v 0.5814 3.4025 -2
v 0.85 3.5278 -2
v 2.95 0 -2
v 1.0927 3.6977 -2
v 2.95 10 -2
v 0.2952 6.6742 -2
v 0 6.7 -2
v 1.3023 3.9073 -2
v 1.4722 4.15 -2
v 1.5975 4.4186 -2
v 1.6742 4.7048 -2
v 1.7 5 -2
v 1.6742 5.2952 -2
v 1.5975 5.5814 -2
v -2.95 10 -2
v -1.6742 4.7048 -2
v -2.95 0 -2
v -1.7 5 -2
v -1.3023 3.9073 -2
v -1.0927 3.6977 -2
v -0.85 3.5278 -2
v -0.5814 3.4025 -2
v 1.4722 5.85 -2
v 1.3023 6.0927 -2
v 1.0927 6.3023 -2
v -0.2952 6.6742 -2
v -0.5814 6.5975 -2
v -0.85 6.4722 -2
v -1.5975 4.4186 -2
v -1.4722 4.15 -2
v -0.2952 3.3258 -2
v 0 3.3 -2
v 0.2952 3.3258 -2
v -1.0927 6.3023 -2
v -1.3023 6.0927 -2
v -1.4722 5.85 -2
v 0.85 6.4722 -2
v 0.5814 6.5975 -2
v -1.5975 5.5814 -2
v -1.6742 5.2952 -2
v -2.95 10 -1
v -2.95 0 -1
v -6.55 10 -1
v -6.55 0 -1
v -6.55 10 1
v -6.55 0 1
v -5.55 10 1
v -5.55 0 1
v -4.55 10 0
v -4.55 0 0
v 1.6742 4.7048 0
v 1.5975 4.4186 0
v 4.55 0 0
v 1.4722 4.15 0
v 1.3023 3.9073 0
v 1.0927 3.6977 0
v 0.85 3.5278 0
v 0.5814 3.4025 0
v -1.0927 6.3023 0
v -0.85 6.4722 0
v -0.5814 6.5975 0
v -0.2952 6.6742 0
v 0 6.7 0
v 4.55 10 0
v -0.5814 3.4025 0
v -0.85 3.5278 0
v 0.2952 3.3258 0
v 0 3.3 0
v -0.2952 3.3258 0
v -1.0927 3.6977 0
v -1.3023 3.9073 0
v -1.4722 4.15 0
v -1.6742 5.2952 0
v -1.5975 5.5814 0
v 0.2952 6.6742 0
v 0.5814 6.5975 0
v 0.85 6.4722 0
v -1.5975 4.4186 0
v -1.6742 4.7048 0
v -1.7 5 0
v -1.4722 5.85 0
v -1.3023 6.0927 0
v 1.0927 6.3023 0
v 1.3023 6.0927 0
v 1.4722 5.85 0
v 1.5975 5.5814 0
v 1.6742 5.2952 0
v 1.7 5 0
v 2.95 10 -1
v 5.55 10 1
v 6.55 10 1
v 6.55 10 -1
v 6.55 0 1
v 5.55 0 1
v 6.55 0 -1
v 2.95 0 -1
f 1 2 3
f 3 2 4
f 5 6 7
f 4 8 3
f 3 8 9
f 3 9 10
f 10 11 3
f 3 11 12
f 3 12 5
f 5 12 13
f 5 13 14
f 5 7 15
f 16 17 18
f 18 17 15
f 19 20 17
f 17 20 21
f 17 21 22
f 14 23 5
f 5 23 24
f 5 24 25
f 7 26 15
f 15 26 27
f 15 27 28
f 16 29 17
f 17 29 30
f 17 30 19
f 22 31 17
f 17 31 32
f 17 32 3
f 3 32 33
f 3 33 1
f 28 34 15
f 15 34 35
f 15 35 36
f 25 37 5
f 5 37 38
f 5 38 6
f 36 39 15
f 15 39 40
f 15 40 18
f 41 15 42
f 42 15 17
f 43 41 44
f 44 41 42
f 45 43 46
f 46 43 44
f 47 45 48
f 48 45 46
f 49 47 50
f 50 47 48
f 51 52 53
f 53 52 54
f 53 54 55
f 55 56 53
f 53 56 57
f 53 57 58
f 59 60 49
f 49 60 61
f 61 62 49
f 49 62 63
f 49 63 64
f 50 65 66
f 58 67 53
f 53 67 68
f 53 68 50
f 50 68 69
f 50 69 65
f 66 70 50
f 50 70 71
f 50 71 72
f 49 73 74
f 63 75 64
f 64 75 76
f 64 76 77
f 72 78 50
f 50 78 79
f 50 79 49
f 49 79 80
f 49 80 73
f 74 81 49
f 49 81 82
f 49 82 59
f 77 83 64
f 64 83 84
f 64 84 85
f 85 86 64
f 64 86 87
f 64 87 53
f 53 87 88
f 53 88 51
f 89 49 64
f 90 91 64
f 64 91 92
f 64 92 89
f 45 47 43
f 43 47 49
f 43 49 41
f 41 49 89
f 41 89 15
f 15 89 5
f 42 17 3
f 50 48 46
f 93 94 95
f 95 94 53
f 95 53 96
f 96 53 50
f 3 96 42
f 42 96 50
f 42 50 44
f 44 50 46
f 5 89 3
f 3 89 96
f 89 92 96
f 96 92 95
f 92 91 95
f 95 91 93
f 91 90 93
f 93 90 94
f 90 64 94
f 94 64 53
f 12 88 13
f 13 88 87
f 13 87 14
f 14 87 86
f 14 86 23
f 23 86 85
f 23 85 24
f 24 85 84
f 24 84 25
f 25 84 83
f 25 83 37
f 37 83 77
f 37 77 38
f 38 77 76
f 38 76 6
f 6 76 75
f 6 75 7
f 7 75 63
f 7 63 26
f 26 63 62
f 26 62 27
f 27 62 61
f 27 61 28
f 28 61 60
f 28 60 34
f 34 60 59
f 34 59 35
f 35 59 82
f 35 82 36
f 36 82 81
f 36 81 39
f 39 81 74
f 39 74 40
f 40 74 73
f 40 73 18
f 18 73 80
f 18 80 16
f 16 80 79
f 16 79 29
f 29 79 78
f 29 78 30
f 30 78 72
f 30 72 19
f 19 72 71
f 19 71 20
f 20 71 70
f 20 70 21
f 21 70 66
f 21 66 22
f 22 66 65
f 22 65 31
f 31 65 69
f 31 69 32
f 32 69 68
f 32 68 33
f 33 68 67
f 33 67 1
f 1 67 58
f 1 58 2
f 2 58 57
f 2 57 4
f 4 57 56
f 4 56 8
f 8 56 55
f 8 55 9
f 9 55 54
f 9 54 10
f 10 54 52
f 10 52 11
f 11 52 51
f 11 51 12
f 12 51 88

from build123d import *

# Parameters (mm, degrees)
AUFSATZ_LINEAR_AUSTRAGEN1_DEPTH = 10
DURCHGANGSLOCH_F_R_M31_D        = 3.4
FORMSCHR_GE1_ANGLE              = 45


with BuildPart() as part:
    # Skizze1 → Aufsatz-Linear austragen1 (new body)
    with BuildSketch(Plane(origin=(0, 0, 0), x_dir=(1, 0, 0), z_dir=(0, 1, 0))):
        Polygon((0, 0), (-4.55, 0), (-4.55, -1), (-6.55, -1), (-6.55, 1), (-2.95, 1), (-2.95, 2), (0, 2), align=None)
    extrude(amount=AUFSATZ_LINEAR_AUSTRAGEN1_DEPTH)

    # Spiegeln1: part across plane


with BuildPart() as part_1:
    add(part.part)
    add(part.part.mirror(Plane(origin=(0, 10, -2), x_dir=(0, 0, 1), z_dir=(-1, 0, 0))))

    # Durchgangsloch für M31 (through all)
    with Locations(Plane.XY):
        with Locations((0, 5)):
            Hole(DURCHGANGSLOCH_F_R_M31_D / 2)

    # Formschräge1
    formschr_ge1_faces = [part_1.faces().sort_by_distance(p)[0] for p in [
        (4.55, 5, 0.5),
        (-4.55, 5, 0.5),
    ]]
    draft(formschr_ge1_faces, Plane(origin=(0, 10, 0), x_dir=(1, 0, 0), z_dir=(0, 0, 1)), FORMSCHR_GE1_ANGLE)


solid = part_1.part
